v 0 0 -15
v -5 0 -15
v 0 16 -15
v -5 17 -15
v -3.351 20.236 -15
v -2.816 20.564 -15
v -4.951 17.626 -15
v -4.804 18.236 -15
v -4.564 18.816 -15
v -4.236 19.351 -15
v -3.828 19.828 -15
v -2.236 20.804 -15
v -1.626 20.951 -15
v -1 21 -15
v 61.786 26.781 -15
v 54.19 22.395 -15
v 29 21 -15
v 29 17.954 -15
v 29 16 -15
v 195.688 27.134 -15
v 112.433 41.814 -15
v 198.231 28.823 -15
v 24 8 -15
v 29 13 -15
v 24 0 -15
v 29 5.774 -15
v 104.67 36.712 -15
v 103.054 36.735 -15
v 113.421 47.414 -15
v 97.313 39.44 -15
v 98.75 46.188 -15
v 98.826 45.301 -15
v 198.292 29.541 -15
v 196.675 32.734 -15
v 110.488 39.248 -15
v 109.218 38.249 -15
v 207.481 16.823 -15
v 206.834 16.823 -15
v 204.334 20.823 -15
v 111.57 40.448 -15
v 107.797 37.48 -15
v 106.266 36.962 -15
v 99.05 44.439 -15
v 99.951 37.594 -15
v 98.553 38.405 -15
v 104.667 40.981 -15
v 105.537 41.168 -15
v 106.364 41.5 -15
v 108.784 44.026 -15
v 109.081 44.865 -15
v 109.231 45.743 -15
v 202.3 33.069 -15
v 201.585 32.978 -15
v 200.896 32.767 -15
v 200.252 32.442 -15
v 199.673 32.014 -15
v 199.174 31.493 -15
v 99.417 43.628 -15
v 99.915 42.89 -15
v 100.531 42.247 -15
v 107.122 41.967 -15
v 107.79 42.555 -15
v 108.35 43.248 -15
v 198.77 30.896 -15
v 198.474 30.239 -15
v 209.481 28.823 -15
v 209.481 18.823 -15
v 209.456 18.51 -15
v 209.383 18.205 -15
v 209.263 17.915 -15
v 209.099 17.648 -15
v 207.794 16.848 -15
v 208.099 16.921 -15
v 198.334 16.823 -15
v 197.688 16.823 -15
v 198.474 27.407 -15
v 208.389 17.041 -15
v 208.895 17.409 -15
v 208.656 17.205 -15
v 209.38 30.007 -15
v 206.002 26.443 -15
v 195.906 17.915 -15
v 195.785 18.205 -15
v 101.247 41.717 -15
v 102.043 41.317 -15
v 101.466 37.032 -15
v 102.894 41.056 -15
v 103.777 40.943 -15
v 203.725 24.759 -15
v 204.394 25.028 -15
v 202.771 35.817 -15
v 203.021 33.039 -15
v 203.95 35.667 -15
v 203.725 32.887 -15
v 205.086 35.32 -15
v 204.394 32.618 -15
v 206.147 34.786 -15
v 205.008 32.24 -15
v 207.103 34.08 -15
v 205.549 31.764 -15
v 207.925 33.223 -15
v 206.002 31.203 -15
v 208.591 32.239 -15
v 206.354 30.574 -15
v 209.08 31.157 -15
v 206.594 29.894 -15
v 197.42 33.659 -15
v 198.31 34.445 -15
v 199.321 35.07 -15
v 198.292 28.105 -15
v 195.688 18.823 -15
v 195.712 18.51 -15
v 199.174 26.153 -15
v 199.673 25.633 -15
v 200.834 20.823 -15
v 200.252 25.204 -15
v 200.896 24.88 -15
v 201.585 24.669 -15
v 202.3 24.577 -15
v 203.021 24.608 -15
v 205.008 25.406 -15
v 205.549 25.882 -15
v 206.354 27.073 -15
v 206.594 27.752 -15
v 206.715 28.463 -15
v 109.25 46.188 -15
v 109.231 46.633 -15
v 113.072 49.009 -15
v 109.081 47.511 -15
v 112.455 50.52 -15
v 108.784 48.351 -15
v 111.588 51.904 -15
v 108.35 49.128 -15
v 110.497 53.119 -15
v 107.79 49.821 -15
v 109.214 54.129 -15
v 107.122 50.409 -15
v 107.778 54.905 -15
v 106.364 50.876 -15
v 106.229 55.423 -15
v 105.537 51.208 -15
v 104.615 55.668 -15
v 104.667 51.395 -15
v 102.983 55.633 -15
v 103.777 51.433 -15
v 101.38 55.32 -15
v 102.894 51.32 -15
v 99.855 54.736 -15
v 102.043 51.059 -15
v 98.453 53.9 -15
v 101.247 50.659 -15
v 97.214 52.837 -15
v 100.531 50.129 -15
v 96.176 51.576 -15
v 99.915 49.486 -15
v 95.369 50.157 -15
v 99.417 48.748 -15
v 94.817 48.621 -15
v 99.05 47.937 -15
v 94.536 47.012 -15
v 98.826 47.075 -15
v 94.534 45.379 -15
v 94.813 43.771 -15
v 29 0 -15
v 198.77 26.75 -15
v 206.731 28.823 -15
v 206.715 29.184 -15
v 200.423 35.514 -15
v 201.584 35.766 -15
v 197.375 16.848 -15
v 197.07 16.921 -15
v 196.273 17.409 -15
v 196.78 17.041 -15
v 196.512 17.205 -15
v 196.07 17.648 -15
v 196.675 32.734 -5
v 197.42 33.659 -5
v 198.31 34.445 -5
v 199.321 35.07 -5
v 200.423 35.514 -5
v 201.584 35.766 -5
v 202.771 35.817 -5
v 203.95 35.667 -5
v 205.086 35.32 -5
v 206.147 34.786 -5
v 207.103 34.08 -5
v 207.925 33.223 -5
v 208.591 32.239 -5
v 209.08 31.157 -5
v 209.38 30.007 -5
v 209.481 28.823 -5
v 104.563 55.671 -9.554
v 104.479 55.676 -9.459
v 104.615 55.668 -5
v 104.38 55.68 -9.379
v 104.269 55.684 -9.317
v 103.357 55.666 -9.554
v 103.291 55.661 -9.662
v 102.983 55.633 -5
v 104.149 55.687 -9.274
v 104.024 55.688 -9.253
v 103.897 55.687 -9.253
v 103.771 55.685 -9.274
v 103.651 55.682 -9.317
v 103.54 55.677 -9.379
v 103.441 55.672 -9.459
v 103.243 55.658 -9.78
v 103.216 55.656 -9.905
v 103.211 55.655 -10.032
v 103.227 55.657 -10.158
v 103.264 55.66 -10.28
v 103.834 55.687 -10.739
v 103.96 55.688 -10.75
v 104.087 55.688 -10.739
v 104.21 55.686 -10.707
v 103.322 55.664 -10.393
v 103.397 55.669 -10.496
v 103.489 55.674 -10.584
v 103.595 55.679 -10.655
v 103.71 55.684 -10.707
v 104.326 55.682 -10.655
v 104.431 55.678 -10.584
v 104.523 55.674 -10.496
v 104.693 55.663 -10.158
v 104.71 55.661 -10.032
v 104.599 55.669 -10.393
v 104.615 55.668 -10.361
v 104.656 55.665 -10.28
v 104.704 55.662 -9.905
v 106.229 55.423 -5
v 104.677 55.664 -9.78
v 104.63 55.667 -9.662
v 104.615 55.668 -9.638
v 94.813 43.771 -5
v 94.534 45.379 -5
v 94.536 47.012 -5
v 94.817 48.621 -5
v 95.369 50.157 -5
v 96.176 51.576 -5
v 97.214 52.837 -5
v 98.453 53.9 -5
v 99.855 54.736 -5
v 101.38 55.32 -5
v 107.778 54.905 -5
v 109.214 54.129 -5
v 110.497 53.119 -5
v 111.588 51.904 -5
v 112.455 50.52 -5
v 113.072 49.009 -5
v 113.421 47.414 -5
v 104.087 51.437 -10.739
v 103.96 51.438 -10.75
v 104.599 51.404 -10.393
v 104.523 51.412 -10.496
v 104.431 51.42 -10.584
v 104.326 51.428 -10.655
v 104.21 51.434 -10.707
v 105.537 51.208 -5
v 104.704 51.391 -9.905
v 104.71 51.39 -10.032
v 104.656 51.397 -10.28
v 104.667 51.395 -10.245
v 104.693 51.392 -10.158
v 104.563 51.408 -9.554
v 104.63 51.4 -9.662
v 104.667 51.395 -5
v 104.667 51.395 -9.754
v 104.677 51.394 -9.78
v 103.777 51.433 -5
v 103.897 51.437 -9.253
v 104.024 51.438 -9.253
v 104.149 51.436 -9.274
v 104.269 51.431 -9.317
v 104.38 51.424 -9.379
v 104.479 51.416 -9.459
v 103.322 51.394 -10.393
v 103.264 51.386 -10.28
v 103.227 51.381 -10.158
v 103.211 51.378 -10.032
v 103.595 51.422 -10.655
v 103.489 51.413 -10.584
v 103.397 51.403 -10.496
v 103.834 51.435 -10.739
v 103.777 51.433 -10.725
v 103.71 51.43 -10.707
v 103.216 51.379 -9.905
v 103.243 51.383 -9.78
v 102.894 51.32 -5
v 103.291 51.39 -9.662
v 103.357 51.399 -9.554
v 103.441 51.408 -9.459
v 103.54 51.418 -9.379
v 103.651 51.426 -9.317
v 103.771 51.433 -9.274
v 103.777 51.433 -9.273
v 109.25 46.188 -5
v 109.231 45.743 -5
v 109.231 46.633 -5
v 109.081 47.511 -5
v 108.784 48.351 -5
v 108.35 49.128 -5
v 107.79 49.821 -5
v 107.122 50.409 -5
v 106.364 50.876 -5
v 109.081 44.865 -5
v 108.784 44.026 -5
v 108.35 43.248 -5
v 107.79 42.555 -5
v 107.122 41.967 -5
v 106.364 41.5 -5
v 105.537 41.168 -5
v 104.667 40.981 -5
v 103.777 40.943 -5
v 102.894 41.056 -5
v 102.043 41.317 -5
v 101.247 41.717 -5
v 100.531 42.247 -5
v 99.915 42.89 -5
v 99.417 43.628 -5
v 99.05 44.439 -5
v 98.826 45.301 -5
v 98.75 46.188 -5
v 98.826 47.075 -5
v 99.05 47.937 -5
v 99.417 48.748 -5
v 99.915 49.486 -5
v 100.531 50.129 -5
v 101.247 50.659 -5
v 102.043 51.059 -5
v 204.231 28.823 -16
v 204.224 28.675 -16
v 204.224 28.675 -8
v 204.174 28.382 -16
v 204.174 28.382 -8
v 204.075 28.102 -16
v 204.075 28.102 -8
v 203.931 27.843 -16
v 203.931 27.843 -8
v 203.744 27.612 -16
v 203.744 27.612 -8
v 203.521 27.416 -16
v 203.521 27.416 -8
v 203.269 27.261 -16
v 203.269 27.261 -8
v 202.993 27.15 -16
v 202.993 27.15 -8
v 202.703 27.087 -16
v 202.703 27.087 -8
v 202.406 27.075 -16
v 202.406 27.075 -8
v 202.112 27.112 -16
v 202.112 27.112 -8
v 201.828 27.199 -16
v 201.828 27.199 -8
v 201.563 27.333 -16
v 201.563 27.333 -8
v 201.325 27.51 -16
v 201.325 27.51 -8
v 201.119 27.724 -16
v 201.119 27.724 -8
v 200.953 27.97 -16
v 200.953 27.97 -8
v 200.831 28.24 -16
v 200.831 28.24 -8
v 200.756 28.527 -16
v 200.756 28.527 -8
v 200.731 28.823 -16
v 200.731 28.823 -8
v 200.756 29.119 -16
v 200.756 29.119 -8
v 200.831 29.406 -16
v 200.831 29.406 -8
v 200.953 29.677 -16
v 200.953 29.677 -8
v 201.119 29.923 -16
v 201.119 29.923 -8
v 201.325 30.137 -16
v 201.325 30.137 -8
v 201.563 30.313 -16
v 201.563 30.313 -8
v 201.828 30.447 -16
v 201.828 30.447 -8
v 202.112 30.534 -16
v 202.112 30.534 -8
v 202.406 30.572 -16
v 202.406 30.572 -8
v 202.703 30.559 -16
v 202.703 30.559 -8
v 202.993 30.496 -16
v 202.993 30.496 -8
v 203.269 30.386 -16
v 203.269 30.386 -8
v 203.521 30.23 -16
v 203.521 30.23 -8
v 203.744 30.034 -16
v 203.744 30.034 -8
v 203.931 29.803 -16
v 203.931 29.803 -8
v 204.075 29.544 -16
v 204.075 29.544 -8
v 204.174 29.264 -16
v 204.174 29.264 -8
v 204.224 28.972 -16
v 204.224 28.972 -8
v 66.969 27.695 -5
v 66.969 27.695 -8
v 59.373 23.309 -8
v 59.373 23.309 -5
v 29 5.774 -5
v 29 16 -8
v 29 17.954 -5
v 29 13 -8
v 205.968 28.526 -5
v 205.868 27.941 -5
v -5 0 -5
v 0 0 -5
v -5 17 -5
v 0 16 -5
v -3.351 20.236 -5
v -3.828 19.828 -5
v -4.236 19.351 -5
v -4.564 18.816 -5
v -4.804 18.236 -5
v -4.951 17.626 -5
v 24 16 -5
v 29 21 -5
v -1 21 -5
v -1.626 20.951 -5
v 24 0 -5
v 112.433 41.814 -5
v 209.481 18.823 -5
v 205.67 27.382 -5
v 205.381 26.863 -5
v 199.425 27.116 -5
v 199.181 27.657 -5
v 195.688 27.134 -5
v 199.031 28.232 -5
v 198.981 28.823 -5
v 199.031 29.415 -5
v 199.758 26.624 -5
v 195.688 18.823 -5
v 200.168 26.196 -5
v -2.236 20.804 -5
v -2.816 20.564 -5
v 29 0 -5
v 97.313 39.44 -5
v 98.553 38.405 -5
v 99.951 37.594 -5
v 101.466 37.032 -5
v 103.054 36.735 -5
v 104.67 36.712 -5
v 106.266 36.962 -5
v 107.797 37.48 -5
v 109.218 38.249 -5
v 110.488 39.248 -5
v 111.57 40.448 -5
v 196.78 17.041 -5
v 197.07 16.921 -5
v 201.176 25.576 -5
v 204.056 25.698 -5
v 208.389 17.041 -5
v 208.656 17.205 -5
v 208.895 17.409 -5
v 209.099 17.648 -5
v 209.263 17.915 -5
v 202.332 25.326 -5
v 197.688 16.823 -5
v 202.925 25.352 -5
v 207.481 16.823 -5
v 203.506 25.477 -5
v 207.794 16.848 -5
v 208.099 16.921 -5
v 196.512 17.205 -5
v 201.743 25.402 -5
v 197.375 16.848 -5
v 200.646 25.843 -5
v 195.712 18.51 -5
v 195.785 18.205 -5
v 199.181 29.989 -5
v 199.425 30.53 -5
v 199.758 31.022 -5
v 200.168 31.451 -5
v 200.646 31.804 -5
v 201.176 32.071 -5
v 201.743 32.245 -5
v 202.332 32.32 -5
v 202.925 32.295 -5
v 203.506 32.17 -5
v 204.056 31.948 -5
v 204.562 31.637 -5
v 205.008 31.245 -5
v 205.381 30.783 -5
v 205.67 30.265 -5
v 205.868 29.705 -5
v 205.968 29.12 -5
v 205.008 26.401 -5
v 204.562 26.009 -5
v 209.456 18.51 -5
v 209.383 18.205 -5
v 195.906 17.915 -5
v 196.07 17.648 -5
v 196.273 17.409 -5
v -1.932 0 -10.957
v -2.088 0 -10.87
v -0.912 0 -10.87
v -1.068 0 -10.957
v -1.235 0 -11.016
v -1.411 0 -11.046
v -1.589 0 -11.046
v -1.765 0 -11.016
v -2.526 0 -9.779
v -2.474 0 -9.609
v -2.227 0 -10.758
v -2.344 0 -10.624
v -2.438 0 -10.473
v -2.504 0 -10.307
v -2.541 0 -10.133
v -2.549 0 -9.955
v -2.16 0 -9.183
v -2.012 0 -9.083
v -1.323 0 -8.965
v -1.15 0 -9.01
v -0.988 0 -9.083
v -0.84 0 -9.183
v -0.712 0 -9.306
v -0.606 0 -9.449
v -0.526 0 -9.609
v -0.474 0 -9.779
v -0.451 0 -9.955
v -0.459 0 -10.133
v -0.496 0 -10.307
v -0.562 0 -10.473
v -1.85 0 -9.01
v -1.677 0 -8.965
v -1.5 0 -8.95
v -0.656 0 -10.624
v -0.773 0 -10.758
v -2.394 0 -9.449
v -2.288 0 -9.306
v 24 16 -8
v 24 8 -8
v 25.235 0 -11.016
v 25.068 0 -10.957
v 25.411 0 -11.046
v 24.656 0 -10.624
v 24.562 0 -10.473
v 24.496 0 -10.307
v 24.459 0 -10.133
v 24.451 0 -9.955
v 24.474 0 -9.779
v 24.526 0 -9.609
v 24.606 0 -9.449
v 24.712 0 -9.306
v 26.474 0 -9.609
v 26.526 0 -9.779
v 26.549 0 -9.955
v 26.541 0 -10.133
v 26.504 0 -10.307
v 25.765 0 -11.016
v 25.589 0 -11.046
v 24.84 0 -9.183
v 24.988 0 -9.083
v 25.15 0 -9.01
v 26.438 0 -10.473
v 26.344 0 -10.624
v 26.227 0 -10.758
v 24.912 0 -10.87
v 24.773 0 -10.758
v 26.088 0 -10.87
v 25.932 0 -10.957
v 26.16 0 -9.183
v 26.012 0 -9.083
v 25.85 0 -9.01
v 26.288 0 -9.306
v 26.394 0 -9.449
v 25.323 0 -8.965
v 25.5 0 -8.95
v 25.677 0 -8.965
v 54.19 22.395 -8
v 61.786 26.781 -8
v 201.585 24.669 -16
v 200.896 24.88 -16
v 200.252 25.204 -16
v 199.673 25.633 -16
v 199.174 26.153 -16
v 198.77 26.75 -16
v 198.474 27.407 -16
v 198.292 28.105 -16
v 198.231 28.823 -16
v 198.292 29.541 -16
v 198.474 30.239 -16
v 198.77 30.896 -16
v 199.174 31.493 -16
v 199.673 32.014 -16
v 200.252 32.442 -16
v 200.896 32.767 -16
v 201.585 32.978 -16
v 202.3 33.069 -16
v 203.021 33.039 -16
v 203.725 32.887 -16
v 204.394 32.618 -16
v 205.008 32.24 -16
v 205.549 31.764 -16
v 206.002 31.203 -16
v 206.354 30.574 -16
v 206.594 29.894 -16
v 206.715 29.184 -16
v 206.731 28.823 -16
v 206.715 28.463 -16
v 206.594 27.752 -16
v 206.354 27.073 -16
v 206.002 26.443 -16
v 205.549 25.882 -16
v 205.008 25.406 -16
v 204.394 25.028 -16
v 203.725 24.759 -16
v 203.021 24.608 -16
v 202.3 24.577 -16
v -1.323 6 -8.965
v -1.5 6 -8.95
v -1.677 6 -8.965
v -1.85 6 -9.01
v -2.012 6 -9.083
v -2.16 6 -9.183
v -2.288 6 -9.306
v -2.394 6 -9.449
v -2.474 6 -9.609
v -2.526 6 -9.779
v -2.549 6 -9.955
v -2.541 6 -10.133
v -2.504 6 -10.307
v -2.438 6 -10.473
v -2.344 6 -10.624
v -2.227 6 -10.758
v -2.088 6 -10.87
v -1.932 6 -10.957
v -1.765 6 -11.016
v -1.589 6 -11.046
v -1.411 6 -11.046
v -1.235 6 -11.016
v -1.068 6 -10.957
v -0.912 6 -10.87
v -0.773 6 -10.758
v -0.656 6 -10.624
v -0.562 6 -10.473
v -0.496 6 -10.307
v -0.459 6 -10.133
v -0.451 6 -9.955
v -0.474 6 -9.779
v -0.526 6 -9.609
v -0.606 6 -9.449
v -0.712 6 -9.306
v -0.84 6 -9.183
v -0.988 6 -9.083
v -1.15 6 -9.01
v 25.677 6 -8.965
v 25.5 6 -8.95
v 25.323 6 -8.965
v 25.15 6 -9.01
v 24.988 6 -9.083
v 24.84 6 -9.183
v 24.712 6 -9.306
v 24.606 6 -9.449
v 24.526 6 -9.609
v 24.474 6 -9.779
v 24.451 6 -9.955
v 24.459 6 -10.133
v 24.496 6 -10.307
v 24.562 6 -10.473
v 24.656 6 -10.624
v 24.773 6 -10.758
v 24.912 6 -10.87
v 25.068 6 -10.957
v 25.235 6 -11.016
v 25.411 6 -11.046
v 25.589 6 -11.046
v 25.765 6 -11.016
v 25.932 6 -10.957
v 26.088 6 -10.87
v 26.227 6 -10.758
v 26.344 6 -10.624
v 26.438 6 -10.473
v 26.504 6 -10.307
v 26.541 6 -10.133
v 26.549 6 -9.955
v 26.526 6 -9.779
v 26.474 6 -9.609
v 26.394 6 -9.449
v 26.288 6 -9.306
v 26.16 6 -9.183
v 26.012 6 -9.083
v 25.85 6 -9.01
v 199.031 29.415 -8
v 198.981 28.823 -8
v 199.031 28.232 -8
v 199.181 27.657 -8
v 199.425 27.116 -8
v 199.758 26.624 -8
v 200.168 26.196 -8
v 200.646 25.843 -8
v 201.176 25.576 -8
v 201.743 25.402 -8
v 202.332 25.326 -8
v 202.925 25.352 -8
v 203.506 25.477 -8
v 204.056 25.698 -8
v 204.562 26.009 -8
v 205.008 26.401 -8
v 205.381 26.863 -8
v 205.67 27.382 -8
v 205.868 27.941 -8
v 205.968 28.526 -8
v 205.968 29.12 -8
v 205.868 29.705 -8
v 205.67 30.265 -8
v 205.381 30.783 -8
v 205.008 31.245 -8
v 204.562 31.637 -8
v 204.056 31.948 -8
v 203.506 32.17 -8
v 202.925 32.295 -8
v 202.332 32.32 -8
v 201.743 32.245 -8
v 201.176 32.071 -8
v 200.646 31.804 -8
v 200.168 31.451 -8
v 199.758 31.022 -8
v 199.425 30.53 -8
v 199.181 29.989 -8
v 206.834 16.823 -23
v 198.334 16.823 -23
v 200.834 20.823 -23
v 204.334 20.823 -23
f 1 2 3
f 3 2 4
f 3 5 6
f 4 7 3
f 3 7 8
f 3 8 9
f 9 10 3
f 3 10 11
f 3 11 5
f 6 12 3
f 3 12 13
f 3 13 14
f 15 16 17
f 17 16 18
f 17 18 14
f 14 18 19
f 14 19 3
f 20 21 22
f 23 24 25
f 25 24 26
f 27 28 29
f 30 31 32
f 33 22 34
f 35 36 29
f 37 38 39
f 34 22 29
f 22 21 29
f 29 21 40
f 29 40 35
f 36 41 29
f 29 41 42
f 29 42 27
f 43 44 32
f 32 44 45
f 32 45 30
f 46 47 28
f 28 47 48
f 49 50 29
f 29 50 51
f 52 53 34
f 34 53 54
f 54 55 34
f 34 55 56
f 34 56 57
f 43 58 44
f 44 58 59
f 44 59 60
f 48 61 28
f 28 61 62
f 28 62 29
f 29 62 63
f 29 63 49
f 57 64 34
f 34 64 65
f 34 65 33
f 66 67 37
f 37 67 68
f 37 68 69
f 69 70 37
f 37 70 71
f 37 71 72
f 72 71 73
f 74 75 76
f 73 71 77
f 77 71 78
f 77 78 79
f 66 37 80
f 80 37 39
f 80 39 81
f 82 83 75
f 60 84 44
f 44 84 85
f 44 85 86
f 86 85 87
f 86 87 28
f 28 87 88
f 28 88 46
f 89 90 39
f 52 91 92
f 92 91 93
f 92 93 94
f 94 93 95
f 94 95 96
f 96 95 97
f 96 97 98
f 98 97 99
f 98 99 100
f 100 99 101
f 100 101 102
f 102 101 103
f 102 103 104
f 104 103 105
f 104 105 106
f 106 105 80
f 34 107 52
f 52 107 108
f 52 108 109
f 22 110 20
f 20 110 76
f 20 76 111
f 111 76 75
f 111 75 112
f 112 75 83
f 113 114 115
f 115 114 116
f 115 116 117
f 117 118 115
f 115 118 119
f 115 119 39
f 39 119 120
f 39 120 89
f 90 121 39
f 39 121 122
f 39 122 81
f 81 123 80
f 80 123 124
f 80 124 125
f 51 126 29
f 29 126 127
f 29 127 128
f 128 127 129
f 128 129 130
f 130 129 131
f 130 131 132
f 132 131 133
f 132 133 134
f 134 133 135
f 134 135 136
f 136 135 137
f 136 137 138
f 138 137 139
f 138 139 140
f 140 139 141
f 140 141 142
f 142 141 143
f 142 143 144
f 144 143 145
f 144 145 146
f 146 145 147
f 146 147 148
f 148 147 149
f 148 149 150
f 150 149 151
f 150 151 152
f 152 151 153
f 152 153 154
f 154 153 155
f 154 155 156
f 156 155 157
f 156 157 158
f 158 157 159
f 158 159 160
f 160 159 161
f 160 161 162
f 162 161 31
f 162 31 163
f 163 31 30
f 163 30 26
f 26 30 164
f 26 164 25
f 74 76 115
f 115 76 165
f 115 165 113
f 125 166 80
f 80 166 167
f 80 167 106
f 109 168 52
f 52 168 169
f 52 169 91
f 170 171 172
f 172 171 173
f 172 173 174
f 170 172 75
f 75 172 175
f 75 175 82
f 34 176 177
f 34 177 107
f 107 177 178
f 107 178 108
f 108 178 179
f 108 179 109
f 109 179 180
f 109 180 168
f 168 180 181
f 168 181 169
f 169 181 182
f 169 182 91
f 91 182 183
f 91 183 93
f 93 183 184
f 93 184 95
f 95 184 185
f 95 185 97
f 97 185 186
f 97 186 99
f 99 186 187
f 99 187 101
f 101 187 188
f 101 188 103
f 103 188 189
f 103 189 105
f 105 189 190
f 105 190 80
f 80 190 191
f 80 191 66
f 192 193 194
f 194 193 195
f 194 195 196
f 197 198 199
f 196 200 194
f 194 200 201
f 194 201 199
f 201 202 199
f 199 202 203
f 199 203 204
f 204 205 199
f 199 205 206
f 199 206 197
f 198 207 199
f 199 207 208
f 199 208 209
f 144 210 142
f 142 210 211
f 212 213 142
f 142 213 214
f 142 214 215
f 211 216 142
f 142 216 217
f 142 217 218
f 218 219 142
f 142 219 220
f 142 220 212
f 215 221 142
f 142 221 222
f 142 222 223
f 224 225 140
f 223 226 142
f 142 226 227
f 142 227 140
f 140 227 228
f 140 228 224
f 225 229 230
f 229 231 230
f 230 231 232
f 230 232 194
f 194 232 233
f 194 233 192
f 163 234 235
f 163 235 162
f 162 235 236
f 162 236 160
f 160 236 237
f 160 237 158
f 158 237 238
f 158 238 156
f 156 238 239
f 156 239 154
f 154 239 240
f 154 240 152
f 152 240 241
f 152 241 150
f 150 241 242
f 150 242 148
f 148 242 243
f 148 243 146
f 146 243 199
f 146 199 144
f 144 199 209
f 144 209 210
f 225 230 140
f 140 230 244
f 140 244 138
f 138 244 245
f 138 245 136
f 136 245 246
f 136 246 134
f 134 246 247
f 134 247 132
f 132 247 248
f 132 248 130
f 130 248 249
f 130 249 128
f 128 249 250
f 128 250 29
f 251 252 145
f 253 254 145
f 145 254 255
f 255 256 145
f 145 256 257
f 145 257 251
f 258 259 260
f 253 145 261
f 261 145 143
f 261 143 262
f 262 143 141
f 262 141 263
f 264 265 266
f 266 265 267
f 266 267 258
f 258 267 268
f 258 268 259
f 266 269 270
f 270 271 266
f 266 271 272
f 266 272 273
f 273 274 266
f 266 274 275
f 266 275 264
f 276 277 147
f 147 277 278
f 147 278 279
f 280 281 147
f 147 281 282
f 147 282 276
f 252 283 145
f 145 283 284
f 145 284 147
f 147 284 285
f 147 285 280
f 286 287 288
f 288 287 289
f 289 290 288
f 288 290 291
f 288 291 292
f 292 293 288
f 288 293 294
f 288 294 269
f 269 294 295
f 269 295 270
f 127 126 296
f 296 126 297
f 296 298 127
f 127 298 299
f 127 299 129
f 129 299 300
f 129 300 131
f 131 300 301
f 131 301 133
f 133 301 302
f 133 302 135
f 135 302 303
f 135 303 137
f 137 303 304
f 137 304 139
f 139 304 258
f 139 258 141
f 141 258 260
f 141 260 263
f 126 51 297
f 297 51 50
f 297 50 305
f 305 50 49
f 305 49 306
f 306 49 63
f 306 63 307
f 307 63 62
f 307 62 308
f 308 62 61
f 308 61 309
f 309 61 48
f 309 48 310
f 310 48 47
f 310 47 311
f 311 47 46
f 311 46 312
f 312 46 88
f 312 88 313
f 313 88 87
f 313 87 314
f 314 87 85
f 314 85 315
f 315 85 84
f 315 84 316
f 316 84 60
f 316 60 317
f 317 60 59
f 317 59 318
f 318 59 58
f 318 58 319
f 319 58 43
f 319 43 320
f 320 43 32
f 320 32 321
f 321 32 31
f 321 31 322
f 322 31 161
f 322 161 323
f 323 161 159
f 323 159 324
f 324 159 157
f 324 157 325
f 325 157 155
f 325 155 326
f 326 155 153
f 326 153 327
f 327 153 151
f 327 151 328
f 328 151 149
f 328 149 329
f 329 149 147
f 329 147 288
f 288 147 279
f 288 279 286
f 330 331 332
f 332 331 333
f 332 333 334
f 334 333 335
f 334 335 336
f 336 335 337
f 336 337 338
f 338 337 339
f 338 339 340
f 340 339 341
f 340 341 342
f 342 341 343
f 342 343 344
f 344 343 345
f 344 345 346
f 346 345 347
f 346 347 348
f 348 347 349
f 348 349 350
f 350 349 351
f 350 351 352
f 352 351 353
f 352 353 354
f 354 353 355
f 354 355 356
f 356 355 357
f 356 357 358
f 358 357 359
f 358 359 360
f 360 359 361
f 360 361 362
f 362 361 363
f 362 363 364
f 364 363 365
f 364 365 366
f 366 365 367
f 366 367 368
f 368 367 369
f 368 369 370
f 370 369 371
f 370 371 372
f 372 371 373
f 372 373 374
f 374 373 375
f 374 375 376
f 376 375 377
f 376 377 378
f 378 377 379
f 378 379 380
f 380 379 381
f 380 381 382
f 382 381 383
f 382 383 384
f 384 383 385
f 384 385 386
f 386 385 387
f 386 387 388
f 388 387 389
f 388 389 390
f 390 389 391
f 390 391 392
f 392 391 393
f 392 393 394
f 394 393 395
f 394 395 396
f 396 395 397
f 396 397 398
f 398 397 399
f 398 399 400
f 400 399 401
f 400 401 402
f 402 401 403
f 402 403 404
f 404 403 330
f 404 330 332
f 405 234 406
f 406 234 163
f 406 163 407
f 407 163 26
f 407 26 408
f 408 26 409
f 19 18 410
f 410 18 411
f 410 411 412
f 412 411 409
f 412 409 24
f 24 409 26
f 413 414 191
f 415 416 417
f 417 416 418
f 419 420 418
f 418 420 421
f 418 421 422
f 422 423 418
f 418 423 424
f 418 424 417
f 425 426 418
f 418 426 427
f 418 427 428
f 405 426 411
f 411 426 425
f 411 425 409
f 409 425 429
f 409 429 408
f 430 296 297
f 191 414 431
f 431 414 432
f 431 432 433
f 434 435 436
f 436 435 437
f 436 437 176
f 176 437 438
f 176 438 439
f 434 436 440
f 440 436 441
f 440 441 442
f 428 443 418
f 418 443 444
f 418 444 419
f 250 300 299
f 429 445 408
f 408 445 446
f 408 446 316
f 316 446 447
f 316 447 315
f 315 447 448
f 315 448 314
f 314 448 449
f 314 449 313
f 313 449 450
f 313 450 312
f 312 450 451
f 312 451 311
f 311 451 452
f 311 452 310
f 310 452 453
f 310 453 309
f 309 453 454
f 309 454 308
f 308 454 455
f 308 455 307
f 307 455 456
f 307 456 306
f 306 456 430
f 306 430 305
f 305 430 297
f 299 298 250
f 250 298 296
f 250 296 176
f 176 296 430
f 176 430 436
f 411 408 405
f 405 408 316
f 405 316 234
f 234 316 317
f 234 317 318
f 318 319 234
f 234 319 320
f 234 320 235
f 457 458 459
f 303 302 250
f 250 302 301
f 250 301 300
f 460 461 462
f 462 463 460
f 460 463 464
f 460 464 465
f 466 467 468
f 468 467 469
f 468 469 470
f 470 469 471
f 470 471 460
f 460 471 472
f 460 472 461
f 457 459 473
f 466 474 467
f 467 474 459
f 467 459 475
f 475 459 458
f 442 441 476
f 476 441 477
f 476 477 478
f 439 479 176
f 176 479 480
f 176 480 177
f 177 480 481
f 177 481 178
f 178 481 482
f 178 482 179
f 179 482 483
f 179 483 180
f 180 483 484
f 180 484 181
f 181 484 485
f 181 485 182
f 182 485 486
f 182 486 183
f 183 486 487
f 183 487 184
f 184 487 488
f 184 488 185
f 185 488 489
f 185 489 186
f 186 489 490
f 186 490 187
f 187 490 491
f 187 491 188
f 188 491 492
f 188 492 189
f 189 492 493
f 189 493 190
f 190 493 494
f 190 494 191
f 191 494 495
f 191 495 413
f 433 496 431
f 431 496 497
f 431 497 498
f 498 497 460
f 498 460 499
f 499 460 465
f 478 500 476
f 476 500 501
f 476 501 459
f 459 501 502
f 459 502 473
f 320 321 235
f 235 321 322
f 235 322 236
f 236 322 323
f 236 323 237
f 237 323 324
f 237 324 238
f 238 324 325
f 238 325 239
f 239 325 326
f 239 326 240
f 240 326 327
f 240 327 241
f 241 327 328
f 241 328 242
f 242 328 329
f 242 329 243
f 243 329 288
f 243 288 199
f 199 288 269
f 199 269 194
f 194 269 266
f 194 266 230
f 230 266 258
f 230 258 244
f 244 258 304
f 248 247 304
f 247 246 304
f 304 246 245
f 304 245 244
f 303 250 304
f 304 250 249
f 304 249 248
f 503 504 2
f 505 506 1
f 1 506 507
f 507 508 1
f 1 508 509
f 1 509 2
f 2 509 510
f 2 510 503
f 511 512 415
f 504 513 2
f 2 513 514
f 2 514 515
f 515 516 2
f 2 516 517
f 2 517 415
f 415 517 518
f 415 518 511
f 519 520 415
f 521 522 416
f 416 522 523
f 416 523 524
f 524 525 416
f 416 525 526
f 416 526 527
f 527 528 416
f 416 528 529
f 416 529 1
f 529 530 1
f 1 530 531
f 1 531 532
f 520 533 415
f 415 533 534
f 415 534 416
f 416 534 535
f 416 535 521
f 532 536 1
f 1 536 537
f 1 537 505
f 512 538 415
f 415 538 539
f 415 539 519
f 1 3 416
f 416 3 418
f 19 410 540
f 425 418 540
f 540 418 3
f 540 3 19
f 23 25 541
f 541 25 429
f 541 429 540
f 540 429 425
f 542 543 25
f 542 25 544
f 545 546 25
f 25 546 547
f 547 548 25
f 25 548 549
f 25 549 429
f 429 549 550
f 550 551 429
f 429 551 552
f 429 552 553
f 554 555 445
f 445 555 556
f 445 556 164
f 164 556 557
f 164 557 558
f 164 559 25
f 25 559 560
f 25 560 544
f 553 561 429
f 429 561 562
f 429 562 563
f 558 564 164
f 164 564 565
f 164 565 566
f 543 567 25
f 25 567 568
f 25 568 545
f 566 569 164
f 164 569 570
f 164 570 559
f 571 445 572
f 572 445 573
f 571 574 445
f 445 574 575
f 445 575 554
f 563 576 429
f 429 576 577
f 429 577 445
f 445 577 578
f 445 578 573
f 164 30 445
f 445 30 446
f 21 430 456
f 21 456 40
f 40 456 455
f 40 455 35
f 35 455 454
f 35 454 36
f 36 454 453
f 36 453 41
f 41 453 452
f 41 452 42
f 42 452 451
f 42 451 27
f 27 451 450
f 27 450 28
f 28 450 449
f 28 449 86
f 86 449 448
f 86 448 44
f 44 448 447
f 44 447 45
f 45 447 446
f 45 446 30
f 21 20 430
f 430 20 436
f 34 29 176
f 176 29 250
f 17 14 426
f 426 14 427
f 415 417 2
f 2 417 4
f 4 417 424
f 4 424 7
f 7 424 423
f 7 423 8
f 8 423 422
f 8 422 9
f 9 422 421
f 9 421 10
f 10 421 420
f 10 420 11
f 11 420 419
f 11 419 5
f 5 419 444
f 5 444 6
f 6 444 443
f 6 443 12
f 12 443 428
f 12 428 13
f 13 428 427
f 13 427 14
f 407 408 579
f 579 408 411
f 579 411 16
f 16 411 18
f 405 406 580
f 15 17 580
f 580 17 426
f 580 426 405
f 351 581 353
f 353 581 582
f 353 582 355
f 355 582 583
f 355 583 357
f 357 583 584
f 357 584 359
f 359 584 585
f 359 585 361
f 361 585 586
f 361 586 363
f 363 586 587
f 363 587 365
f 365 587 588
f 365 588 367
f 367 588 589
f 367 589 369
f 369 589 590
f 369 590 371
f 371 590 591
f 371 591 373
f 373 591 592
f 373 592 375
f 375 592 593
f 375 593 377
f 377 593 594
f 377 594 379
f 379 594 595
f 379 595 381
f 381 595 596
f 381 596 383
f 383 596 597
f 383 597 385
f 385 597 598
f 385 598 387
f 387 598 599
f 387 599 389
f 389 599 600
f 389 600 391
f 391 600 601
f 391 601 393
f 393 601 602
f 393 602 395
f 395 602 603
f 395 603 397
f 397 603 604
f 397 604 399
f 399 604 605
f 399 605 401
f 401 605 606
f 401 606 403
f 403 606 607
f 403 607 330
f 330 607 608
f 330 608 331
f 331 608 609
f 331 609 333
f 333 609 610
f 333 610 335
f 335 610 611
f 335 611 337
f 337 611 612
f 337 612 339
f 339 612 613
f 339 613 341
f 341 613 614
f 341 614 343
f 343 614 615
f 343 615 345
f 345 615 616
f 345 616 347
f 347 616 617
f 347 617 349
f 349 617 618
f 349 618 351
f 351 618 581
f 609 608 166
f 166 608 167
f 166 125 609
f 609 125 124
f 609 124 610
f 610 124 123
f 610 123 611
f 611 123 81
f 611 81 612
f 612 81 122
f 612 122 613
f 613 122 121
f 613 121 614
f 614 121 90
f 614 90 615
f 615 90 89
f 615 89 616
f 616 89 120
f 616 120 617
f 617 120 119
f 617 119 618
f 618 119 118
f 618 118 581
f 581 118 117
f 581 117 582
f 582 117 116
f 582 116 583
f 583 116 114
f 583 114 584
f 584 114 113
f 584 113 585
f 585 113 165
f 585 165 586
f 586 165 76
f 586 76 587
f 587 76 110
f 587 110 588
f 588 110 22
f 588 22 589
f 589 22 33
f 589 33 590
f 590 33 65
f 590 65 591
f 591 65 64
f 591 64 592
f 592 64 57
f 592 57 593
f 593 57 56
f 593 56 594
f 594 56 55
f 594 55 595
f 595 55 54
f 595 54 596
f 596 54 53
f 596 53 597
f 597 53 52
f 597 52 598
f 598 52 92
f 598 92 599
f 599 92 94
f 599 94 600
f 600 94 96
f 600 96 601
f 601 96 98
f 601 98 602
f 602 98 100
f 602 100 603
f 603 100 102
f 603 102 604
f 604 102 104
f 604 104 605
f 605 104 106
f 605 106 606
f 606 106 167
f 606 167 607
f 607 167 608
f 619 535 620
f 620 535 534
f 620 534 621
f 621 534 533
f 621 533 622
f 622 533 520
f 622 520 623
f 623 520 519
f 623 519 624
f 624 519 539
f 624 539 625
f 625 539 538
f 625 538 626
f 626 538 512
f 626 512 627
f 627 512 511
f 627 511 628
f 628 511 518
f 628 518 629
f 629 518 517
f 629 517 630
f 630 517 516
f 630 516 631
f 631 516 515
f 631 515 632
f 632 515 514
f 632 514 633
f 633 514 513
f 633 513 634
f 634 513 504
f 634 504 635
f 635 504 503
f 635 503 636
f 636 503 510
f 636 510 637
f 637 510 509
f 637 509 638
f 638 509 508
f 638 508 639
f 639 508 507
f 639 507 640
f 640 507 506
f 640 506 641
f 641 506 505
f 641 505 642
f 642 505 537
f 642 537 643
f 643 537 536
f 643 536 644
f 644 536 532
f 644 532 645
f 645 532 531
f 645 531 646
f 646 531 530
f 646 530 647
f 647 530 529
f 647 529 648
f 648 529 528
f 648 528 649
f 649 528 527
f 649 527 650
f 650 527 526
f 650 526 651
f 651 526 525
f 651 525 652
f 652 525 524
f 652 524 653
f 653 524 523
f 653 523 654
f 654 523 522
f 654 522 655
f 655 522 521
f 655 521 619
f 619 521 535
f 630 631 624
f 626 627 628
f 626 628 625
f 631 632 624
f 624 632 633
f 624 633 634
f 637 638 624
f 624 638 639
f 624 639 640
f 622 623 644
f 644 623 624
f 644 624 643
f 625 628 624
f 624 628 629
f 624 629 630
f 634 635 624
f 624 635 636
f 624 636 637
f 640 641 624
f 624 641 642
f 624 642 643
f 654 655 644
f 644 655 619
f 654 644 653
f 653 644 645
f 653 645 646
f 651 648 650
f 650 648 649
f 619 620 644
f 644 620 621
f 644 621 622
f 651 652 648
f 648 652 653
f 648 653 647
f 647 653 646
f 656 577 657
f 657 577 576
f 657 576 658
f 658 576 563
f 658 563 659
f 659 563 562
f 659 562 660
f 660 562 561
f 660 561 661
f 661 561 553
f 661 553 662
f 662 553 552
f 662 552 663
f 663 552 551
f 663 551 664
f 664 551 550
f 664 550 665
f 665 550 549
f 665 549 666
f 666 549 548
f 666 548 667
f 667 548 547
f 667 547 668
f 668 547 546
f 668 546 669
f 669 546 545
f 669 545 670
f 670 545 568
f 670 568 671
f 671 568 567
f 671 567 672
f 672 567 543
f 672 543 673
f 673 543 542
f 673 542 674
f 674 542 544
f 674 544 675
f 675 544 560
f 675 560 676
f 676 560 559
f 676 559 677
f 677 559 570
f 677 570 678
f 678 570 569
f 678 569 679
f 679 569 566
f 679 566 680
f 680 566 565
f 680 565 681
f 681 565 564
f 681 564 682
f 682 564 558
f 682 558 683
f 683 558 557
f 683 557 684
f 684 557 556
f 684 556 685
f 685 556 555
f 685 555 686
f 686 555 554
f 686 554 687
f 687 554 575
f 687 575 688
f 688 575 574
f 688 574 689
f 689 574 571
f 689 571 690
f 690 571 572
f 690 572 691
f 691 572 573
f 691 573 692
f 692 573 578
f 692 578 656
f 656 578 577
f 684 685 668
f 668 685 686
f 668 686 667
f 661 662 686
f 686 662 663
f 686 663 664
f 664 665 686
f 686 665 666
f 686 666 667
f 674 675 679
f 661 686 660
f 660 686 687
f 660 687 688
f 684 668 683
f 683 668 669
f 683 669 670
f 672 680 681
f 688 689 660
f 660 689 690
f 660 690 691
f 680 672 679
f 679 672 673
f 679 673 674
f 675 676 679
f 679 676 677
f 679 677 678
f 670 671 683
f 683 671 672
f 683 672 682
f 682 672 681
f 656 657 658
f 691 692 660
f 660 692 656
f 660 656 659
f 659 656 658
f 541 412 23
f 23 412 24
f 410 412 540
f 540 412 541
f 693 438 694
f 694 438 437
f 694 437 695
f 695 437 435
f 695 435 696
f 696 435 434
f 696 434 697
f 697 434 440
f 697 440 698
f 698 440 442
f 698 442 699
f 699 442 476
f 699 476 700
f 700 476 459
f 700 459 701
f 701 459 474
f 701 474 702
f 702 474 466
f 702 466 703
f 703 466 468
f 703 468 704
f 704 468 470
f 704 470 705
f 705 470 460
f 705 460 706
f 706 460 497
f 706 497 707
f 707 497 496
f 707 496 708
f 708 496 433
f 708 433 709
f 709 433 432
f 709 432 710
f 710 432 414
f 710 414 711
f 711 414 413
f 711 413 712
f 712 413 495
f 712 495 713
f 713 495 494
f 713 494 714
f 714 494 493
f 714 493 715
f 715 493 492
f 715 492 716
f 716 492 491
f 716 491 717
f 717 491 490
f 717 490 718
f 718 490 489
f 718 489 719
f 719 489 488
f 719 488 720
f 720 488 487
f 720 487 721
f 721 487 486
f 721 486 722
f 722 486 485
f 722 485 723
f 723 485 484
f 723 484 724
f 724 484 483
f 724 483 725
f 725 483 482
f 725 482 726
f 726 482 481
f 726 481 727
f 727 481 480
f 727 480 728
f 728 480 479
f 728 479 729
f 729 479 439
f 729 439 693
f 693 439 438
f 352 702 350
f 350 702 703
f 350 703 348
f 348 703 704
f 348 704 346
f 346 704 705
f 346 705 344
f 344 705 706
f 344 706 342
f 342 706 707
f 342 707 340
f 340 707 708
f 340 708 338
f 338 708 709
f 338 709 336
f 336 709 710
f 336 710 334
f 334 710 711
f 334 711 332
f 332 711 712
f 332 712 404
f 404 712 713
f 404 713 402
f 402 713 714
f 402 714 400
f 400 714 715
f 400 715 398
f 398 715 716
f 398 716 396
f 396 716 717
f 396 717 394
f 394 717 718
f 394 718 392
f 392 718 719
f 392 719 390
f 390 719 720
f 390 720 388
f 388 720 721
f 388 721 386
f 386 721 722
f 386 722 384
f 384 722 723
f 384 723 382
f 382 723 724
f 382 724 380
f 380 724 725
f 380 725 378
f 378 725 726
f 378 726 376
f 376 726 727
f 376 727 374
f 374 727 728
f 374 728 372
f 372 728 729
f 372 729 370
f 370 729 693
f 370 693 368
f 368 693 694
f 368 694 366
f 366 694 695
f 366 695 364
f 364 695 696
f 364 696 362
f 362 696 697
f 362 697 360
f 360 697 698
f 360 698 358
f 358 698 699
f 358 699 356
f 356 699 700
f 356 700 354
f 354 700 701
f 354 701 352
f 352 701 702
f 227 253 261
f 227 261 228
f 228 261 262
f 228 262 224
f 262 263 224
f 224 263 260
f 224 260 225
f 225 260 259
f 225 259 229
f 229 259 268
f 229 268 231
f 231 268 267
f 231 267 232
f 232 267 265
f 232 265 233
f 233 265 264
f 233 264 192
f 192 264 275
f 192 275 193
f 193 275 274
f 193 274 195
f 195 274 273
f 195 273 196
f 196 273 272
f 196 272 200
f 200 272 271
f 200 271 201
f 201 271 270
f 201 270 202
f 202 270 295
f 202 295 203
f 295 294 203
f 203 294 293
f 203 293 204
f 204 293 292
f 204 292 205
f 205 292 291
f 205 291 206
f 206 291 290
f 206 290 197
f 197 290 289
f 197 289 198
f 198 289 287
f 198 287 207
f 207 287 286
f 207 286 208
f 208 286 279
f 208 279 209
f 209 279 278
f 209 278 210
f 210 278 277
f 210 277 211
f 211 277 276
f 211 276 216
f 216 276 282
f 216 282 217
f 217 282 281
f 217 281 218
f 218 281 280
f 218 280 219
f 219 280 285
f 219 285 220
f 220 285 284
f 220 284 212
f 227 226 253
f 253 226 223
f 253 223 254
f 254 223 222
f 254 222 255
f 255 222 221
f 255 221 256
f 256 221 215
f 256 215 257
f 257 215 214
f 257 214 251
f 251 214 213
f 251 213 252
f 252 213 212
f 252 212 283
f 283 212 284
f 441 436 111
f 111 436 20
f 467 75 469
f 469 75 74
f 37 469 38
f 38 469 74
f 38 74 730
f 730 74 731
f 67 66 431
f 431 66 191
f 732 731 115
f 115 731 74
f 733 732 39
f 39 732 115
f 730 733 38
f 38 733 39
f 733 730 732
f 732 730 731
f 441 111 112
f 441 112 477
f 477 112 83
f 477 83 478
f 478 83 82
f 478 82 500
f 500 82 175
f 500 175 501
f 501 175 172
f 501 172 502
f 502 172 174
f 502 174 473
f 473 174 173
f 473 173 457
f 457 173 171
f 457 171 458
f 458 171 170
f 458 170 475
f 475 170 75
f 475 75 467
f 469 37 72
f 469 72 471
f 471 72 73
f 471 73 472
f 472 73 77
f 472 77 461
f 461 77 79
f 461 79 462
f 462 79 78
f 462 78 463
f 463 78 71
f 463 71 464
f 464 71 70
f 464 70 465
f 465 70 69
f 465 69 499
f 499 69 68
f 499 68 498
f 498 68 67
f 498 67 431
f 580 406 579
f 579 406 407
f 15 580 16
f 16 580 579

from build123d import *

# Parameters (mm, degrees)
SKICA1_R                 = 5.25
P_IDAT_VYSUNUT_M1_DEPTH  = 5
ZAOBLIT1_R               = 4
P_IDAT_VYSUNUT_M3_DEPTH  = 5
SKICA5_R                 = 4.25
SKICA5_R_2               = 1.75
P_IDAT_VYSUNUT_M4_DEPTH  = 1
SKICA8_R                 = 1.05
ODEBRAT_VYSUNUT_M3_DEPTH = 6
ODEBRAT_VYSUNUT_M4_DEPTH = 7
SKICA2_R                 = 1.75
ODEBRAT_VYSUNUT_M5_DEPTH = 10
SKICA10_R                = 3.5
ODEBRAT_VYSUNUT_M6_DEPTH = 3
ODEBRAT_START            = 50
SKICA11_R                = 0.75
ODEBRAT_VYSUNUT_M7_DEPTH = 10
P_IDAT_VYSUNUT_M5_DEPTH  = 10
P_IDAT_VYSUNUT_M6_DEPTH  = 8
ZAOBLIT2_R               = 2
ODEBRAT_VYSUNUT_M8_DEPTH = 7


with BuildPart() as part:
    # Skica1 → Přidat vysunutím1 (new body, symmetric)
    with BuildSketch(Plane.XY):
        with BuildLine():
            Line((0, 0), (0, 16))
            Line((0, 16), (24, 16))
            Line((24, 16), (24, 0))
            Line((24, 0), (29, 0))
            Line((29, 0), (97.312746067, 39.440382331))
            ThreePointArc((97.312746067, 39.440382331), (105.473420704, 36.802978572), (112.433277726, 41.81425579))
            Line((112.433277726, 41.81425579), (195.687578405, 27.134276321))
            ThreePointArc((195.687578405, 27.134276321), (209.374429572, 27.607666525), (196.674905514, 32.733686604))
            Line((196.674905514, 32.733686604), (113.420604835, 47.413666074))
            ThreePointArc((113.420604835, 47.413666074), (102.174688824, 55.511016714), (94.812746067, 43.77050935))
            Line((94.812746067, 43.77050935), (29, 5.773502692))
            Line((29, 5.773502692), (29, 21))
            Line((29, 21), (-5, 21))
            Line((-5, 21), (-5, 0))
            Line((-5, 0), (0, 0))
        make_face()
        with Locations((104, 46.188021535)):
            Circle(SKICA1_R, mode=Mode.SUBTRACT)
    extrude(amount=P_IDAT_VYSUNUT_M1_DEPTH, both=True)

    # Zaoblit1
    zaoblit1_edges = [part.edges().sort_by_distance(p)[0] for p in [
        (-5, 21, 0),
    ]]
    fillet(zaoblit1_edges, radius=ZAOBLIT1_R)

    # Skica4 → Přidat vysunutím3 (add, symmetric)
    with BuildSketch(Plane.XY):
        Polygon((29, 21), (66.969109888, 27.694978507), (59.37284323, 23.309271907), (29, 17.953720164), align=None)
    extrude(amount=P_IDAT_VYSUNUT_M3_DEPTH, both=True)

    # Skica5 → Přidat vysunutím4 (add)
    with BuildSketch(Plane.XY.offset(5)):
        with Locations((202.480775301, 28.823203768)):
            Circle(SKICA5_R)
        with Locations((202.480775301, 28.823203768)):
            Circle(SKICA5_R_2, mode=Mode.SUBTRACT)
    extrude(amount=P_IDAT_VYSUNUT_M4_DEPTH)

    # Skica8 → Odebrat vysunutím3 (cut)
    with BuildSketch(Plane.XZ):
        with Locations((-1.5, 0)):
            Circle(SKICA8_R)
        with Locations((25.5, 0)):
            Circle(SKICA8_R)
    extrude(amount=-ODEBRAT_VYSUNUT_M3_DEPTH, mode=Mode.SUBTRACT)

    # Skica9 → Odebrat vysunutím4 (cut)
    with BuildSketch(Plane.XY.offset(5)):
        Polygon((24, 16), (29, 16), (29, 13), (24, 8), align=None)
    extrude(amount=-ODEBRAT_VYSUNUT_M4_DEPTH, mode=Mode.SUBTRACT)

    # Skica2 → Odebrat vysunutím5 (cut)
    with BuildSketch(Plane.XY.offset(5)):
        with Locations((202.480775301, 28.823203768)):
            Circle(SKICA2_R)
    extrude(amount=-ODEBRAT_VYSUNUT_M5_DEPTH, mode=Mode.SUBTRACT)

    # Skica10 → Odebrat vysunutím6 (cut)
    with BuildSketch(Plane(origin=(0, 0, -5), x_dir=(-1, 0, 0), z_dir=(0, 0, -1))):
        with Locations((-202.480775301, 28.823203768)):
            Circle(SKICA10_R)
    extrude(amount=-ODEBRAT_VYSUNUT_M6_DEPTH, mode=Mode.SUBTRACT)


with BuildPart() as body_2:
    # Zrcadlit1: mirrored copy
    add(part.part.mirror(Plane(origin=(93.65445241, 28.310869093, -5), x_dir=(1, 0, 0), z_dir=(0, 0, -1))))

    # Skica11 → Odebrat vysunutím7 (cut)
    with BuildSketch(Plane(origin=(0, 0, 0), x_dir=(1, 0, 0), z_dir=(0, 1, 0)).offset(ODEBRAT_START)):
        with Locations((103.960302418, 10)):
            Circle(SKICA11_R)
    extrude(amount=ODEBRAT_VYSUNUT_M7_DEPTH, mode=Mode.SUBTRACT)

    # Skica12 → Přidat vysunutím5 (add)
    with BuildSketch(Plane(origin=(0, 0, -15), x_dir=(-1, 0, 0), z_dir=(0, 0, -1))):
        with BuildLine():
            Line((-209.480775301, 28.823203768), (-209.480775301, 16.823203768))
            Line((-209.480775301, 16.823203768), (-195.687578405, 16.823203768))
            Line((-195.687578405, 16.823203768), (-195.687578405, 27.134276321))
            ThreePointArc((-195.687578405, 27.134276321), (-203.331546047, 21.875096894), (-209.480775301, 28.823203768))
        make_face()
    extrude(amount=-P_IDAT_VYSUNUT_M5_DEPTH)

    # Skica13 → Přidat vysunutím6 (add)
    with BuildSketch(Plane(origin=(0, 0, -15), x_dir=(-1, 0, 0), z_dir=(0, 0, -1))):
        Polygon((-204.334176853, 20.823203768), (-200.834176853, 20.823203768), (-198.334176853, 16.823203768), (-206.834176853, 16.823203768), align=None)
    extrude(amount=P_IDAT_VYSUNUT_M6_DEPTH)

    # Zaoblit2
    zaoblit2_edges = [body_2.edges().sort_by_distance(p)[0] for p in [
        (195.687578405, 16.823203768, -10),
        (209.480775301, 16.823203768, -10),
    ]]
    fillet(zaoblit2_edges, radius=ZAOBLIT2_R)

    # Skica14 → Odebrat vysunutím8 (cut)
    with BuildSketch(Plane(origin=(0, 0, -15), x_dir=(-1, 0, 0), z_dir=(0, 0, -1))):
        Polygon((-59.37284323, 23.309271907), (-66.969109888, 27.694978507), (-61.786216453, 26.781094556), (-54.189949795, 22.395387956), align=None)
    extrude(amount=-ODEBRAT_VYSUNUT_M8_DEPTH, mode=Mode.SUBTRACT)


solid = body_2.part
